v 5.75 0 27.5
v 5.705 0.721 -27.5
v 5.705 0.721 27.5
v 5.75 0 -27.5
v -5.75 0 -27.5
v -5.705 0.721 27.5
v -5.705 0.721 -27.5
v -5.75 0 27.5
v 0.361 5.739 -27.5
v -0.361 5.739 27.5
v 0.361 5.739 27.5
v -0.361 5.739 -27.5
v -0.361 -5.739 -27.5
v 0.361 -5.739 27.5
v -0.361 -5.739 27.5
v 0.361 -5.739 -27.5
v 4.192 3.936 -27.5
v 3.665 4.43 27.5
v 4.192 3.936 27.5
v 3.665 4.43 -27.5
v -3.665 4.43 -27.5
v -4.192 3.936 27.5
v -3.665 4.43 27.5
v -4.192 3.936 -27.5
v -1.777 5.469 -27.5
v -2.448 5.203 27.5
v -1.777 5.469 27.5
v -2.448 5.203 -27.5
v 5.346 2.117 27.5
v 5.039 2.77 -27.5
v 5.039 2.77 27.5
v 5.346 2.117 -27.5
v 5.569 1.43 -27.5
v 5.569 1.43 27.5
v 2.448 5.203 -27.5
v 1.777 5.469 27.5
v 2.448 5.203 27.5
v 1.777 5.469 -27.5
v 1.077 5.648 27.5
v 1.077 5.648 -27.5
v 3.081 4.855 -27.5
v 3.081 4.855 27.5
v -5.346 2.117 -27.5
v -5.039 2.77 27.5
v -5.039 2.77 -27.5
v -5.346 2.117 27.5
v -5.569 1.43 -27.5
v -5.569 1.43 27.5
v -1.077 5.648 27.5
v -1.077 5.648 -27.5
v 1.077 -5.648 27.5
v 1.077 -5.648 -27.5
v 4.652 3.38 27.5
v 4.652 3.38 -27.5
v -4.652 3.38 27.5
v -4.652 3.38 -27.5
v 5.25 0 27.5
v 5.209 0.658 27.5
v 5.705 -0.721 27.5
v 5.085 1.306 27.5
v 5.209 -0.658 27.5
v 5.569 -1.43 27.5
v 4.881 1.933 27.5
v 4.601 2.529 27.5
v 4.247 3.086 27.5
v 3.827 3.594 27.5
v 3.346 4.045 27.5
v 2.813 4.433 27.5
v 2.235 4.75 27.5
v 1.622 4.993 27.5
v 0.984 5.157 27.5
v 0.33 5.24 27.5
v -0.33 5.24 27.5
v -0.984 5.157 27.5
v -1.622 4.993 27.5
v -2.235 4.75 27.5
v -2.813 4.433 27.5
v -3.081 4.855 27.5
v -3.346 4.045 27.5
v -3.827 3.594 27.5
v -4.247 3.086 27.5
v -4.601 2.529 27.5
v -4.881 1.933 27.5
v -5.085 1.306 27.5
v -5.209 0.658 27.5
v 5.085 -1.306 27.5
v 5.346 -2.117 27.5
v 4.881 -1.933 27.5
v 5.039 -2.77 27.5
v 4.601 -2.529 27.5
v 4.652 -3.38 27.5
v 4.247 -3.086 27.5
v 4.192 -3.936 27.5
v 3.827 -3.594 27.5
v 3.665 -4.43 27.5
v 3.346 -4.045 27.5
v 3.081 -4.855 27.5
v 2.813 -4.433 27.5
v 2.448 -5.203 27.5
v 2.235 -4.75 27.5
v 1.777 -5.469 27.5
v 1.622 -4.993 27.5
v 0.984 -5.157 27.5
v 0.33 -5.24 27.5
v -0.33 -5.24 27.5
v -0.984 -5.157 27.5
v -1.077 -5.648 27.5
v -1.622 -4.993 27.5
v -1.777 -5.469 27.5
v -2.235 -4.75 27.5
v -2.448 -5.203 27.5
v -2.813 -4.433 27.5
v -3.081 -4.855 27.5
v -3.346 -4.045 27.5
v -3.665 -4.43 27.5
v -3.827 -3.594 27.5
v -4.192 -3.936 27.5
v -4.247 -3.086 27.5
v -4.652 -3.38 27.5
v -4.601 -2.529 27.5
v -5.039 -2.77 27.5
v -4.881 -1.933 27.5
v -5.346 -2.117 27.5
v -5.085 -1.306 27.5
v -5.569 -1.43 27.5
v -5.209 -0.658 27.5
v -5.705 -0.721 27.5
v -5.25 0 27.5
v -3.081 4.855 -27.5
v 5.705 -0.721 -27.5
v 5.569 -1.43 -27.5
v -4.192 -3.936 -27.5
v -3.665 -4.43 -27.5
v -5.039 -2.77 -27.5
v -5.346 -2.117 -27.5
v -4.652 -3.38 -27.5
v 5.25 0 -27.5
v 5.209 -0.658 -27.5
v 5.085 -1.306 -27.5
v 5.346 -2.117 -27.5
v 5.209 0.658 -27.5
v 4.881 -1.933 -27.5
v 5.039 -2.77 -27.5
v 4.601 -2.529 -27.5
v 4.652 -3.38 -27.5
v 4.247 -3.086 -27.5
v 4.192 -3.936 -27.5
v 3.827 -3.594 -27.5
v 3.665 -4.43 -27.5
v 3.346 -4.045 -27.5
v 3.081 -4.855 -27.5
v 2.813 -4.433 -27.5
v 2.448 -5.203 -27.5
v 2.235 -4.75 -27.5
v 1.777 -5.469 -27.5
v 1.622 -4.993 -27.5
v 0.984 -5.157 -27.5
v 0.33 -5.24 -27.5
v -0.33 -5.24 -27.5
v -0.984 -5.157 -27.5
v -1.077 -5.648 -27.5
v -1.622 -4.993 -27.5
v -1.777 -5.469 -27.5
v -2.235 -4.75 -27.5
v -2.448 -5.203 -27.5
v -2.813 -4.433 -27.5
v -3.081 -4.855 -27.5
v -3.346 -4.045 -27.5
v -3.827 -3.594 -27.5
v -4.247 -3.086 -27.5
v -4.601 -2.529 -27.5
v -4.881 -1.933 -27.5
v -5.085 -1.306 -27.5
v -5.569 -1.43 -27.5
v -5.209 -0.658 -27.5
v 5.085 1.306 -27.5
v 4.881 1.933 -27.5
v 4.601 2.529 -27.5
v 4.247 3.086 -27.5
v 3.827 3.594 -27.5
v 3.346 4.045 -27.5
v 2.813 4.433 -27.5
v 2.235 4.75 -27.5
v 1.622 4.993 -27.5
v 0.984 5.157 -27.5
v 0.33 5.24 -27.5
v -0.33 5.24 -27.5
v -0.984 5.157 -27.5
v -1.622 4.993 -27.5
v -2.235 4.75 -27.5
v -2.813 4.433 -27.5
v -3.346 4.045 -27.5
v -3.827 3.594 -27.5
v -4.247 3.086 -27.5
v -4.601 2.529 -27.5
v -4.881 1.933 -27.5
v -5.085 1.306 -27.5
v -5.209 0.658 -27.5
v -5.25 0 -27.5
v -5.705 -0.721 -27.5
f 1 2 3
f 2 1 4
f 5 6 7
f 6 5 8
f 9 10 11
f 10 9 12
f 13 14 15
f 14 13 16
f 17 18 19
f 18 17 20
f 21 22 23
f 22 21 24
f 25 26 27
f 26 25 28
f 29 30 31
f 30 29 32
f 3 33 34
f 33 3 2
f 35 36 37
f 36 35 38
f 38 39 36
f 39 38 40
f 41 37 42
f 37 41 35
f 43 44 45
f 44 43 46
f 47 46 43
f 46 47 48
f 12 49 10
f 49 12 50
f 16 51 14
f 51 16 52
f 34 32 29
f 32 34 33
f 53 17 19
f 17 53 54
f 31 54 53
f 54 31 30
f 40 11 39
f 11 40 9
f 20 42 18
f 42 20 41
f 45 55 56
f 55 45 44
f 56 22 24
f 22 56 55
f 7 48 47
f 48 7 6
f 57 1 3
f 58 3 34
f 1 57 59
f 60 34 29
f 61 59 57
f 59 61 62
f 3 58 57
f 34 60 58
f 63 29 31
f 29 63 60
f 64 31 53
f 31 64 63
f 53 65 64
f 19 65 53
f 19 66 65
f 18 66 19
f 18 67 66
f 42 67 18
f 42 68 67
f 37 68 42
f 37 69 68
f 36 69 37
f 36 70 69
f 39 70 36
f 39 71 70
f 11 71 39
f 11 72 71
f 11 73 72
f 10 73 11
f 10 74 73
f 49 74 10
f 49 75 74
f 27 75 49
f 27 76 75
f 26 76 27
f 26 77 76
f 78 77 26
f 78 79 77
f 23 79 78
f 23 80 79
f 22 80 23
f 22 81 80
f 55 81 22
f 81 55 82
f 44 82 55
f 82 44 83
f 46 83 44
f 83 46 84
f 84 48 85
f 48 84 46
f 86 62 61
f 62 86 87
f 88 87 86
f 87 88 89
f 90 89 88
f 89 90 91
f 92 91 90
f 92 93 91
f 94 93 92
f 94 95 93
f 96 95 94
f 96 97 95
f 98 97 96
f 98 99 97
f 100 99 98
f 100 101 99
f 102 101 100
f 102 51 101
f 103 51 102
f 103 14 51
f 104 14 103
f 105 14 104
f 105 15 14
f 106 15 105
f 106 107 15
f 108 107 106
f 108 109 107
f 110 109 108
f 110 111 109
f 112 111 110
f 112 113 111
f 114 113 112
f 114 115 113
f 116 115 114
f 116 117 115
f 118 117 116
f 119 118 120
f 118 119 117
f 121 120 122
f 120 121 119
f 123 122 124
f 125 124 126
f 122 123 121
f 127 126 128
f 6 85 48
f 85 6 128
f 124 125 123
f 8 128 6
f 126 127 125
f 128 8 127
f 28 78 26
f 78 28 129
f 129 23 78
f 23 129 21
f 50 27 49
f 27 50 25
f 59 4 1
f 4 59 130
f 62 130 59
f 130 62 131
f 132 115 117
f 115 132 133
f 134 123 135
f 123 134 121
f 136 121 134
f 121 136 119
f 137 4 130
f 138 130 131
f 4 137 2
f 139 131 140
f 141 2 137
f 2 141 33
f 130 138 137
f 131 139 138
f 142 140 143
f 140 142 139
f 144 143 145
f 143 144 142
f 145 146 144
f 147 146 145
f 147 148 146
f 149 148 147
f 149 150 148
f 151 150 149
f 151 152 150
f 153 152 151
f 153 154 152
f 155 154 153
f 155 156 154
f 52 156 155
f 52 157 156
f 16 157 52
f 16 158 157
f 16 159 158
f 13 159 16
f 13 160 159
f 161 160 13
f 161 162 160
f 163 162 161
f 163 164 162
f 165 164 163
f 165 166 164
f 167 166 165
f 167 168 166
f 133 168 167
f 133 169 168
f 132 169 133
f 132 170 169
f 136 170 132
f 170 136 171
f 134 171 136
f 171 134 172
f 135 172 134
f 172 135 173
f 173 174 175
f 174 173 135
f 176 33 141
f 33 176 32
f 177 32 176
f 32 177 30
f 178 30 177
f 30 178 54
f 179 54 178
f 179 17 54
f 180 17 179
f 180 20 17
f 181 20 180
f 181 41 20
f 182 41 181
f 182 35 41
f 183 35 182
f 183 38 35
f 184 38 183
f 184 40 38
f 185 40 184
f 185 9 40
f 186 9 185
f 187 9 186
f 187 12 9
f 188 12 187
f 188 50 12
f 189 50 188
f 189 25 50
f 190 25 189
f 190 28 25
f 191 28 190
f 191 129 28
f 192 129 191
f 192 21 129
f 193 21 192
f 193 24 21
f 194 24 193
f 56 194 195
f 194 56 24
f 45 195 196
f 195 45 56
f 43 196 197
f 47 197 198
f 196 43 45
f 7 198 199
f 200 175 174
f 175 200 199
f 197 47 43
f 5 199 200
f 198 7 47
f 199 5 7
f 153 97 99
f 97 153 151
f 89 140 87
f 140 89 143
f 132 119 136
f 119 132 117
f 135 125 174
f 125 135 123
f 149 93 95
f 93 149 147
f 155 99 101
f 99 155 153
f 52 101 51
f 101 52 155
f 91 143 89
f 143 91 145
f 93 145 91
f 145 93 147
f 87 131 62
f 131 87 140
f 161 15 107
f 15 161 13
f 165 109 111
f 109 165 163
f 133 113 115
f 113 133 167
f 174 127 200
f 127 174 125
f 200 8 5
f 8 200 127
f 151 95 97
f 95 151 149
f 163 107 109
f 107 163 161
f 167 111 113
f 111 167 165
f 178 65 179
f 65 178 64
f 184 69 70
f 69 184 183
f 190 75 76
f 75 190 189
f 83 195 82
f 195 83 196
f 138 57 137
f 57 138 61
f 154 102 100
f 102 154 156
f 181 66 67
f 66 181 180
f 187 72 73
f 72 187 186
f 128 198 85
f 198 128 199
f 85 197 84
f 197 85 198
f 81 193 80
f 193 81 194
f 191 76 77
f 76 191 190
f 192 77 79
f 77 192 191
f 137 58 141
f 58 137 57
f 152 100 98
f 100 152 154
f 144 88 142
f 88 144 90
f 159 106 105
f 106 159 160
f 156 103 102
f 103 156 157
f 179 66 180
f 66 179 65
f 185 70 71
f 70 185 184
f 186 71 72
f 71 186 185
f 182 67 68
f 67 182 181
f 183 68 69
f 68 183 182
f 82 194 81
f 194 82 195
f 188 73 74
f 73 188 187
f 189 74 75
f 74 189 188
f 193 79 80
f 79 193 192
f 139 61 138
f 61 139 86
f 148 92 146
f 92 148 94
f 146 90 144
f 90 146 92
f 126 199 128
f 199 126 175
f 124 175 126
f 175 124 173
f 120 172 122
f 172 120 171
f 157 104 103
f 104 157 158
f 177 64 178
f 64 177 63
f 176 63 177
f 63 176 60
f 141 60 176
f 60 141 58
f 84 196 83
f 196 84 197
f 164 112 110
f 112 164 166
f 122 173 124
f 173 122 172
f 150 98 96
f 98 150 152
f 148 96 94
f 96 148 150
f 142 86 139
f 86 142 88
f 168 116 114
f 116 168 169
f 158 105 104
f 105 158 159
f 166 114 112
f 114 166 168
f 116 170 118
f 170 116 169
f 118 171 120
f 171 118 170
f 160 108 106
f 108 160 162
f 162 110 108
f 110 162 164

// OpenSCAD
$fn = 50;


difference() {
	union() {
		translate(v = [0, 0, -27.5000000000]) {
			cylinder(h = 55, r = 5.7500000000);
		}
	}
	union() {
		translate(v = [0, 0, -100.0000000000]) {
			cylinder(h = 200, r = 5.2500000000);
		}
	}
}
